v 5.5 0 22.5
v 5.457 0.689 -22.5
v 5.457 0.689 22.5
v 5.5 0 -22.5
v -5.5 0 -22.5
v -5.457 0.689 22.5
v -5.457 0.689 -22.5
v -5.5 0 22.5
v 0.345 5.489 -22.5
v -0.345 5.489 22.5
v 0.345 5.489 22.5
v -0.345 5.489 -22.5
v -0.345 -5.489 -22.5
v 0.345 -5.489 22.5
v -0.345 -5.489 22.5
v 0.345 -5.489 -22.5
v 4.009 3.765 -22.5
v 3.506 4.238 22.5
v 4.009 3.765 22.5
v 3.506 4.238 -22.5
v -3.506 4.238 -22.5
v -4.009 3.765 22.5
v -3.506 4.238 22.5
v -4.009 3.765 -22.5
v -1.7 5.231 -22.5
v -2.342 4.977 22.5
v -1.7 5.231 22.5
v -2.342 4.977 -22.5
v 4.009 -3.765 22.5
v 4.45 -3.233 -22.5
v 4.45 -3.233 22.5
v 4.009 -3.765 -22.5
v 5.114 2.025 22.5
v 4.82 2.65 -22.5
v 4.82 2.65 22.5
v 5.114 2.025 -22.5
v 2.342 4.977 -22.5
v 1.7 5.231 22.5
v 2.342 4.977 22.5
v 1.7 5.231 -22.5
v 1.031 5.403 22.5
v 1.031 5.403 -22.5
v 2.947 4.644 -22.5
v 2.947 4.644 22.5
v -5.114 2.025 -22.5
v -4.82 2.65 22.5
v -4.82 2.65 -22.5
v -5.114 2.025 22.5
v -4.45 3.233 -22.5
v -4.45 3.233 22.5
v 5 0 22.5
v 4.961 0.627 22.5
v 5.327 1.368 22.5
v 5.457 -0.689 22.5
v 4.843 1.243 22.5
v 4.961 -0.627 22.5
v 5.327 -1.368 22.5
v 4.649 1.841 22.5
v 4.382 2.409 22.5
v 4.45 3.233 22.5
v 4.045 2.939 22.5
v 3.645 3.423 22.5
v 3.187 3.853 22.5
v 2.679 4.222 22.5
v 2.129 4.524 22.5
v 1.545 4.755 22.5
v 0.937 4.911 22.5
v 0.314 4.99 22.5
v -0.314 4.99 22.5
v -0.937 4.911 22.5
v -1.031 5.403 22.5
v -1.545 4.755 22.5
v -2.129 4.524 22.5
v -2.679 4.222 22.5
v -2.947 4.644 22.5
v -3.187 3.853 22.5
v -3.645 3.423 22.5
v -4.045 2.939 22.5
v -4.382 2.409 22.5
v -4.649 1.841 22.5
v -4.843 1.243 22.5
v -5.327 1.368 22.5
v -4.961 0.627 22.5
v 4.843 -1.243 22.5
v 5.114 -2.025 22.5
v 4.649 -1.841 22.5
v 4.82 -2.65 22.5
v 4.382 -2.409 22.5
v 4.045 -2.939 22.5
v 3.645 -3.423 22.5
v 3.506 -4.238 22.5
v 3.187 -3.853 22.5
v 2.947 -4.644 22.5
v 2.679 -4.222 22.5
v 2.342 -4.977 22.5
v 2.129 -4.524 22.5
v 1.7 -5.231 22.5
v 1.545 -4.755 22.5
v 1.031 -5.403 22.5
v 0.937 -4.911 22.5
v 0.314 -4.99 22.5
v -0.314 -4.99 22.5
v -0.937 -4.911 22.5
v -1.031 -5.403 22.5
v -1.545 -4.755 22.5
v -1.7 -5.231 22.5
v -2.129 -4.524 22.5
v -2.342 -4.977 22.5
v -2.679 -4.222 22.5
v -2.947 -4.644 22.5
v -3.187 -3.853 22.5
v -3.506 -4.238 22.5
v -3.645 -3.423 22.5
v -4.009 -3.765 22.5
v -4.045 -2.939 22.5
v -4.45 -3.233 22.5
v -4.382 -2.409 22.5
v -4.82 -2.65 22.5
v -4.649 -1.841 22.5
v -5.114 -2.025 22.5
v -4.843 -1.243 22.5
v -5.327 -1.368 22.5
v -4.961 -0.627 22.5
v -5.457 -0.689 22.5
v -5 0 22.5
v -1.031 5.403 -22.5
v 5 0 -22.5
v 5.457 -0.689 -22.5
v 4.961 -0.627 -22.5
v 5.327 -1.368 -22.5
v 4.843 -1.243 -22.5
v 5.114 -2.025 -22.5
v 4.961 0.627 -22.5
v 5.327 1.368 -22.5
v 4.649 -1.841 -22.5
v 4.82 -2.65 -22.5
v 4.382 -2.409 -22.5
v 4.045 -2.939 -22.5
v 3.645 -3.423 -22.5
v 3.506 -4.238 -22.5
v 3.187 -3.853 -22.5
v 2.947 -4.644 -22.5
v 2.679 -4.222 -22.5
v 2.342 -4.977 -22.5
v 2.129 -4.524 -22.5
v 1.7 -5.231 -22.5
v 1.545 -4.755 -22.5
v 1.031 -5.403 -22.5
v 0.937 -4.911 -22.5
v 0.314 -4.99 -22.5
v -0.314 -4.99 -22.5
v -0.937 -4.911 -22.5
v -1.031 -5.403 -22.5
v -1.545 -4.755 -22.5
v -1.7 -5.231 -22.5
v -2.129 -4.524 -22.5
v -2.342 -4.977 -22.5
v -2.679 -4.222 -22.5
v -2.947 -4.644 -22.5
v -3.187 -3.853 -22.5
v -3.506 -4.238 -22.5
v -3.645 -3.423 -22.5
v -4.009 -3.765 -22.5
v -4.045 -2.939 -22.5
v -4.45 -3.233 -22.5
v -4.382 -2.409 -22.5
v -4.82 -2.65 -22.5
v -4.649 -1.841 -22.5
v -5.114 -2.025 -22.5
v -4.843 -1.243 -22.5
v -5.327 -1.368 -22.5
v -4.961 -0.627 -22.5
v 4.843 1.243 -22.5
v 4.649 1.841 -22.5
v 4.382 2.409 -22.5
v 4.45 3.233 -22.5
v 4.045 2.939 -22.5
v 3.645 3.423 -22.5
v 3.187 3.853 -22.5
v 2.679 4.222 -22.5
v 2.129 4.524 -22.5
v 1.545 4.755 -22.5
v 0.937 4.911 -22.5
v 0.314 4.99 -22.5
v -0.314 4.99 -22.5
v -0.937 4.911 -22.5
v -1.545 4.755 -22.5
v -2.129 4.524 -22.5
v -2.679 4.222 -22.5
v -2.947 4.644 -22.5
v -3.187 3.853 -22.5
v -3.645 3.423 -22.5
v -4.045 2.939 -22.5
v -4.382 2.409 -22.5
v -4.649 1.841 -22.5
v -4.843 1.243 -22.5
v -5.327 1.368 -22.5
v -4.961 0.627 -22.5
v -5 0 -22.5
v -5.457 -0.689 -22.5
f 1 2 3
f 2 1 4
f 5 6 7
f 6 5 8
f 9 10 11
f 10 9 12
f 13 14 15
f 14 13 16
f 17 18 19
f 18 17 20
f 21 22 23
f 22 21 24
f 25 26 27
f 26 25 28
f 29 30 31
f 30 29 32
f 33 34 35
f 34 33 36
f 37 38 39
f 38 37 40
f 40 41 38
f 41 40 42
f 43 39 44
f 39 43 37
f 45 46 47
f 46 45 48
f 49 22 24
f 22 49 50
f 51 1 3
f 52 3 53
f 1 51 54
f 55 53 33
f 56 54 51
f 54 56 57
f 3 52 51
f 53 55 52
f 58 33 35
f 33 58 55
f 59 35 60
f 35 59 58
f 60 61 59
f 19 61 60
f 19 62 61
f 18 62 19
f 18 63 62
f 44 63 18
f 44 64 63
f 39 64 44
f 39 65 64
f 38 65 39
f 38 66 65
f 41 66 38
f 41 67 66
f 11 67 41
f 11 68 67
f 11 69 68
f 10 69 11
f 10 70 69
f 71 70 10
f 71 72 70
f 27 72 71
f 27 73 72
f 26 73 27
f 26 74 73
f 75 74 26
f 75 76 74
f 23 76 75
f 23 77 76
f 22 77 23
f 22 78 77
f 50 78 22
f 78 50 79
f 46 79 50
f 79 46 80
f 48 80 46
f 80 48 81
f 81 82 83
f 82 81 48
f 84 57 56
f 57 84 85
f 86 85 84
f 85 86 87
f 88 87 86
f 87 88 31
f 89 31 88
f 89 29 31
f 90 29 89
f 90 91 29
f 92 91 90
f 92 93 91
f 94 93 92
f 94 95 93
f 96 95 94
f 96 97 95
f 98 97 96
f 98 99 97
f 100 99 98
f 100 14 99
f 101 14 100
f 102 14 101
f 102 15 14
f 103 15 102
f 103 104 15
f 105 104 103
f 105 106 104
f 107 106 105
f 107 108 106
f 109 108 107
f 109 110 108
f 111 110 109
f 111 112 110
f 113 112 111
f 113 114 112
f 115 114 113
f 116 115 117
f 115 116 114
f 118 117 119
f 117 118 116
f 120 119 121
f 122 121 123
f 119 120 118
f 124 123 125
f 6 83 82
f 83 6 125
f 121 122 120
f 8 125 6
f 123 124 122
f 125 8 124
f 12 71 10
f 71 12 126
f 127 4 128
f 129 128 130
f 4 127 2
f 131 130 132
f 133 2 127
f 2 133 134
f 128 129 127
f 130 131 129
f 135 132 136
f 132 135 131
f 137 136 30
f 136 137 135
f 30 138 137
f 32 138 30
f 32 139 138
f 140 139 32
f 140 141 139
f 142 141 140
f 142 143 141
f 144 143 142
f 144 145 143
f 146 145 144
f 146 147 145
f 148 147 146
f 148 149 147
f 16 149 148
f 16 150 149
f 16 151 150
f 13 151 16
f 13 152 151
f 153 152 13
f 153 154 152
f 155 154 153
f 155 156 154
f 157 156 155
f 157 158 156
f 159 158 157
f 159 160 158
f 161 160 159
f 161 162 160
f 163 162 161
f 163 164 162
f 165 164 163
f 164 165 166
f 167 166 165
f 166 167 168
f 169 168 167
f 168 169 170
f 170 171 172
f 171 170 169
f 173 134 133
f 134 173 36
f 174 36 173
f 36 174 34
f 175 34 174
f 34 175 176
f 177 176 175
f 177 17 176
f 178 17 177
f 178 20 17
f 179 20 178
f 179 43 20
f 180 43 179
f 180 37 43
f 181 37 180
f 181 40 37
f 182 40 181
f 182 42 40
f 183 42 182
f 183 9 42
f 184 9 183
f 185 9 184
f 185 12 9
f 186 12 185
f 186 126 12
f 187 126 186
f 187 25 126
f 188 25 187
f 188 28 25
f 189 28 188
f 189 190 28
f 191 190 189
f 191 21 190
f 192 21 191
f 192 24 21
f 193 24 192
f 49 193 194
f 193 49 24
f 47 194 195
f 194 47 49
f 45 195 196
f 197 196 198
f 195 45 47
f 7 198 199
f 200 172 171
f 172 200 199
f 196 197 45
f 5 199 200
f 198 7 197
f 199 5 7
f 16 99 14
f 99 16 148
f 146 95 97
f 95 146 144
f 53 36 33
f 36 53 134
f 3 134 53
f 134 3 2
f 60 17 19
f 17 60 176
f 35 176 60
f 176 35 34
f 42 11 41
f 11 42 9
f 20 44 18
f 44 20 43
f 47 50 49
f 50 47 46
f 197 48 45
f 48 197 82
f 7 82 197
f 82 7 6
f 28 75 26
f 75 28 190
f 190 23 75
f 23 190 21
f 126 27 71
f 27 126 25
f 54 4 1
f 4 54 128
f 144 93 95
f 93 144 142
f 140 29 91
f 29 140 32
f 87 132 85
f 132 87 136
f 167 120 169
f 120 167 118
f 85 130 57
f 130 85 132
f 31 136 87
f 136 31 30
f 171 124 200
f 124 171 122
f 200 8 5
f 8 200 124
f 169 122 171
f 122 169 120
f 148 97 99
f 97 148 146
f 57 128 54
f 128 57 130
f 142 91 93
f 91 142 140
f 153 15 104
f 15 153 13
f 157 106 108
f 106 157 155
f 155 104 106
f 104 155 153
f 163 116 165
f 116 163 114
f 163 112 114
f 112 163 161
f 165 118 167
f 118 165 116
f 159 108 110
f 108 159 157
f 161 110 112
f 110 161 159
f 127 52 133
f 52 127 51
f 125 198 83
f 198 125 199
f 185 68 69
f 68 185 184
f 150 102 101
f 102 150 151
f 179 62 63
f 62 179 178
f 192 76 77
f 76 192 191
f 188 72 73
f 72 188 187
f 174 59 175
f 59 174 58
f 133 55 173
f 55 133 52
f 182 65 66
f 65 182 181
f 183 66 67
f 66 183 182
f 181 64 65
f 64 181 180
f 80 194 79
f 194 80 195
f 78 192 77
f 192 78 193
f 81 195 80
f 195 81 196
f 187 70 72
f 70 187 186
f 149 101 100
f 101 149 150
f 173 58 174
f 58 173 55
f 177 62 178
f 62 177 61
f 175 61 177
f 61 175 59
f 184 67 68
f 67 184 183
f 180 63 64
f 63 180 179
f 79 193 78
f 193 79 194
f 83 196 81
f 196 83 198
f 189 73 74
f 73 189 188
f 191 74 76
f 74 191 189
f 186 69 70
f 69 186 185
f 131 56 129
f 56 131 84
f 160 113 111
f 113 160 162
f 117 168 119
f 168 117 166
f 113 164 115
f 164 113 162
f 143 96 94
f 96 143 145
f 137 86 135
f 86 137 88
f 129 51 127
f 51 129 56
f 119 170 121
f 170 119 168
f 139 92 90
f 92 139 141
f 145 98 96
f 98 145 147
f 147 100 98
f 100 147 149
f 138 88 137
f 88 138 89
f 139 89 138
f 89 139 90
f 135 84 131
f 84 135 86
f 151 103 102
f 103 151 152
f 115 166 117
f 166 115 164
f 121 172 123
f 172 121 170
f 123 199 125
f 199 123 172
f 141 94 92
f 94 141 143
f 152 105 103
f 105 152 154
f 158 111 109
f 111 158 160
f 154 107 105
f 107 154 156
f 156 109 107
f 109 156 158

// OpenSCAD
$fn = 50;


difference() {
	union() {
		translate(v = [0, 0, -22.5000000000]) {
			cylinder(h = 45, r = 5.5000000000);
		}
	}
	union() {
		translate(v = [0, 0, -100.0000000000]) {
			cylinder(h = 200, r = 5);
		}
	}
}
